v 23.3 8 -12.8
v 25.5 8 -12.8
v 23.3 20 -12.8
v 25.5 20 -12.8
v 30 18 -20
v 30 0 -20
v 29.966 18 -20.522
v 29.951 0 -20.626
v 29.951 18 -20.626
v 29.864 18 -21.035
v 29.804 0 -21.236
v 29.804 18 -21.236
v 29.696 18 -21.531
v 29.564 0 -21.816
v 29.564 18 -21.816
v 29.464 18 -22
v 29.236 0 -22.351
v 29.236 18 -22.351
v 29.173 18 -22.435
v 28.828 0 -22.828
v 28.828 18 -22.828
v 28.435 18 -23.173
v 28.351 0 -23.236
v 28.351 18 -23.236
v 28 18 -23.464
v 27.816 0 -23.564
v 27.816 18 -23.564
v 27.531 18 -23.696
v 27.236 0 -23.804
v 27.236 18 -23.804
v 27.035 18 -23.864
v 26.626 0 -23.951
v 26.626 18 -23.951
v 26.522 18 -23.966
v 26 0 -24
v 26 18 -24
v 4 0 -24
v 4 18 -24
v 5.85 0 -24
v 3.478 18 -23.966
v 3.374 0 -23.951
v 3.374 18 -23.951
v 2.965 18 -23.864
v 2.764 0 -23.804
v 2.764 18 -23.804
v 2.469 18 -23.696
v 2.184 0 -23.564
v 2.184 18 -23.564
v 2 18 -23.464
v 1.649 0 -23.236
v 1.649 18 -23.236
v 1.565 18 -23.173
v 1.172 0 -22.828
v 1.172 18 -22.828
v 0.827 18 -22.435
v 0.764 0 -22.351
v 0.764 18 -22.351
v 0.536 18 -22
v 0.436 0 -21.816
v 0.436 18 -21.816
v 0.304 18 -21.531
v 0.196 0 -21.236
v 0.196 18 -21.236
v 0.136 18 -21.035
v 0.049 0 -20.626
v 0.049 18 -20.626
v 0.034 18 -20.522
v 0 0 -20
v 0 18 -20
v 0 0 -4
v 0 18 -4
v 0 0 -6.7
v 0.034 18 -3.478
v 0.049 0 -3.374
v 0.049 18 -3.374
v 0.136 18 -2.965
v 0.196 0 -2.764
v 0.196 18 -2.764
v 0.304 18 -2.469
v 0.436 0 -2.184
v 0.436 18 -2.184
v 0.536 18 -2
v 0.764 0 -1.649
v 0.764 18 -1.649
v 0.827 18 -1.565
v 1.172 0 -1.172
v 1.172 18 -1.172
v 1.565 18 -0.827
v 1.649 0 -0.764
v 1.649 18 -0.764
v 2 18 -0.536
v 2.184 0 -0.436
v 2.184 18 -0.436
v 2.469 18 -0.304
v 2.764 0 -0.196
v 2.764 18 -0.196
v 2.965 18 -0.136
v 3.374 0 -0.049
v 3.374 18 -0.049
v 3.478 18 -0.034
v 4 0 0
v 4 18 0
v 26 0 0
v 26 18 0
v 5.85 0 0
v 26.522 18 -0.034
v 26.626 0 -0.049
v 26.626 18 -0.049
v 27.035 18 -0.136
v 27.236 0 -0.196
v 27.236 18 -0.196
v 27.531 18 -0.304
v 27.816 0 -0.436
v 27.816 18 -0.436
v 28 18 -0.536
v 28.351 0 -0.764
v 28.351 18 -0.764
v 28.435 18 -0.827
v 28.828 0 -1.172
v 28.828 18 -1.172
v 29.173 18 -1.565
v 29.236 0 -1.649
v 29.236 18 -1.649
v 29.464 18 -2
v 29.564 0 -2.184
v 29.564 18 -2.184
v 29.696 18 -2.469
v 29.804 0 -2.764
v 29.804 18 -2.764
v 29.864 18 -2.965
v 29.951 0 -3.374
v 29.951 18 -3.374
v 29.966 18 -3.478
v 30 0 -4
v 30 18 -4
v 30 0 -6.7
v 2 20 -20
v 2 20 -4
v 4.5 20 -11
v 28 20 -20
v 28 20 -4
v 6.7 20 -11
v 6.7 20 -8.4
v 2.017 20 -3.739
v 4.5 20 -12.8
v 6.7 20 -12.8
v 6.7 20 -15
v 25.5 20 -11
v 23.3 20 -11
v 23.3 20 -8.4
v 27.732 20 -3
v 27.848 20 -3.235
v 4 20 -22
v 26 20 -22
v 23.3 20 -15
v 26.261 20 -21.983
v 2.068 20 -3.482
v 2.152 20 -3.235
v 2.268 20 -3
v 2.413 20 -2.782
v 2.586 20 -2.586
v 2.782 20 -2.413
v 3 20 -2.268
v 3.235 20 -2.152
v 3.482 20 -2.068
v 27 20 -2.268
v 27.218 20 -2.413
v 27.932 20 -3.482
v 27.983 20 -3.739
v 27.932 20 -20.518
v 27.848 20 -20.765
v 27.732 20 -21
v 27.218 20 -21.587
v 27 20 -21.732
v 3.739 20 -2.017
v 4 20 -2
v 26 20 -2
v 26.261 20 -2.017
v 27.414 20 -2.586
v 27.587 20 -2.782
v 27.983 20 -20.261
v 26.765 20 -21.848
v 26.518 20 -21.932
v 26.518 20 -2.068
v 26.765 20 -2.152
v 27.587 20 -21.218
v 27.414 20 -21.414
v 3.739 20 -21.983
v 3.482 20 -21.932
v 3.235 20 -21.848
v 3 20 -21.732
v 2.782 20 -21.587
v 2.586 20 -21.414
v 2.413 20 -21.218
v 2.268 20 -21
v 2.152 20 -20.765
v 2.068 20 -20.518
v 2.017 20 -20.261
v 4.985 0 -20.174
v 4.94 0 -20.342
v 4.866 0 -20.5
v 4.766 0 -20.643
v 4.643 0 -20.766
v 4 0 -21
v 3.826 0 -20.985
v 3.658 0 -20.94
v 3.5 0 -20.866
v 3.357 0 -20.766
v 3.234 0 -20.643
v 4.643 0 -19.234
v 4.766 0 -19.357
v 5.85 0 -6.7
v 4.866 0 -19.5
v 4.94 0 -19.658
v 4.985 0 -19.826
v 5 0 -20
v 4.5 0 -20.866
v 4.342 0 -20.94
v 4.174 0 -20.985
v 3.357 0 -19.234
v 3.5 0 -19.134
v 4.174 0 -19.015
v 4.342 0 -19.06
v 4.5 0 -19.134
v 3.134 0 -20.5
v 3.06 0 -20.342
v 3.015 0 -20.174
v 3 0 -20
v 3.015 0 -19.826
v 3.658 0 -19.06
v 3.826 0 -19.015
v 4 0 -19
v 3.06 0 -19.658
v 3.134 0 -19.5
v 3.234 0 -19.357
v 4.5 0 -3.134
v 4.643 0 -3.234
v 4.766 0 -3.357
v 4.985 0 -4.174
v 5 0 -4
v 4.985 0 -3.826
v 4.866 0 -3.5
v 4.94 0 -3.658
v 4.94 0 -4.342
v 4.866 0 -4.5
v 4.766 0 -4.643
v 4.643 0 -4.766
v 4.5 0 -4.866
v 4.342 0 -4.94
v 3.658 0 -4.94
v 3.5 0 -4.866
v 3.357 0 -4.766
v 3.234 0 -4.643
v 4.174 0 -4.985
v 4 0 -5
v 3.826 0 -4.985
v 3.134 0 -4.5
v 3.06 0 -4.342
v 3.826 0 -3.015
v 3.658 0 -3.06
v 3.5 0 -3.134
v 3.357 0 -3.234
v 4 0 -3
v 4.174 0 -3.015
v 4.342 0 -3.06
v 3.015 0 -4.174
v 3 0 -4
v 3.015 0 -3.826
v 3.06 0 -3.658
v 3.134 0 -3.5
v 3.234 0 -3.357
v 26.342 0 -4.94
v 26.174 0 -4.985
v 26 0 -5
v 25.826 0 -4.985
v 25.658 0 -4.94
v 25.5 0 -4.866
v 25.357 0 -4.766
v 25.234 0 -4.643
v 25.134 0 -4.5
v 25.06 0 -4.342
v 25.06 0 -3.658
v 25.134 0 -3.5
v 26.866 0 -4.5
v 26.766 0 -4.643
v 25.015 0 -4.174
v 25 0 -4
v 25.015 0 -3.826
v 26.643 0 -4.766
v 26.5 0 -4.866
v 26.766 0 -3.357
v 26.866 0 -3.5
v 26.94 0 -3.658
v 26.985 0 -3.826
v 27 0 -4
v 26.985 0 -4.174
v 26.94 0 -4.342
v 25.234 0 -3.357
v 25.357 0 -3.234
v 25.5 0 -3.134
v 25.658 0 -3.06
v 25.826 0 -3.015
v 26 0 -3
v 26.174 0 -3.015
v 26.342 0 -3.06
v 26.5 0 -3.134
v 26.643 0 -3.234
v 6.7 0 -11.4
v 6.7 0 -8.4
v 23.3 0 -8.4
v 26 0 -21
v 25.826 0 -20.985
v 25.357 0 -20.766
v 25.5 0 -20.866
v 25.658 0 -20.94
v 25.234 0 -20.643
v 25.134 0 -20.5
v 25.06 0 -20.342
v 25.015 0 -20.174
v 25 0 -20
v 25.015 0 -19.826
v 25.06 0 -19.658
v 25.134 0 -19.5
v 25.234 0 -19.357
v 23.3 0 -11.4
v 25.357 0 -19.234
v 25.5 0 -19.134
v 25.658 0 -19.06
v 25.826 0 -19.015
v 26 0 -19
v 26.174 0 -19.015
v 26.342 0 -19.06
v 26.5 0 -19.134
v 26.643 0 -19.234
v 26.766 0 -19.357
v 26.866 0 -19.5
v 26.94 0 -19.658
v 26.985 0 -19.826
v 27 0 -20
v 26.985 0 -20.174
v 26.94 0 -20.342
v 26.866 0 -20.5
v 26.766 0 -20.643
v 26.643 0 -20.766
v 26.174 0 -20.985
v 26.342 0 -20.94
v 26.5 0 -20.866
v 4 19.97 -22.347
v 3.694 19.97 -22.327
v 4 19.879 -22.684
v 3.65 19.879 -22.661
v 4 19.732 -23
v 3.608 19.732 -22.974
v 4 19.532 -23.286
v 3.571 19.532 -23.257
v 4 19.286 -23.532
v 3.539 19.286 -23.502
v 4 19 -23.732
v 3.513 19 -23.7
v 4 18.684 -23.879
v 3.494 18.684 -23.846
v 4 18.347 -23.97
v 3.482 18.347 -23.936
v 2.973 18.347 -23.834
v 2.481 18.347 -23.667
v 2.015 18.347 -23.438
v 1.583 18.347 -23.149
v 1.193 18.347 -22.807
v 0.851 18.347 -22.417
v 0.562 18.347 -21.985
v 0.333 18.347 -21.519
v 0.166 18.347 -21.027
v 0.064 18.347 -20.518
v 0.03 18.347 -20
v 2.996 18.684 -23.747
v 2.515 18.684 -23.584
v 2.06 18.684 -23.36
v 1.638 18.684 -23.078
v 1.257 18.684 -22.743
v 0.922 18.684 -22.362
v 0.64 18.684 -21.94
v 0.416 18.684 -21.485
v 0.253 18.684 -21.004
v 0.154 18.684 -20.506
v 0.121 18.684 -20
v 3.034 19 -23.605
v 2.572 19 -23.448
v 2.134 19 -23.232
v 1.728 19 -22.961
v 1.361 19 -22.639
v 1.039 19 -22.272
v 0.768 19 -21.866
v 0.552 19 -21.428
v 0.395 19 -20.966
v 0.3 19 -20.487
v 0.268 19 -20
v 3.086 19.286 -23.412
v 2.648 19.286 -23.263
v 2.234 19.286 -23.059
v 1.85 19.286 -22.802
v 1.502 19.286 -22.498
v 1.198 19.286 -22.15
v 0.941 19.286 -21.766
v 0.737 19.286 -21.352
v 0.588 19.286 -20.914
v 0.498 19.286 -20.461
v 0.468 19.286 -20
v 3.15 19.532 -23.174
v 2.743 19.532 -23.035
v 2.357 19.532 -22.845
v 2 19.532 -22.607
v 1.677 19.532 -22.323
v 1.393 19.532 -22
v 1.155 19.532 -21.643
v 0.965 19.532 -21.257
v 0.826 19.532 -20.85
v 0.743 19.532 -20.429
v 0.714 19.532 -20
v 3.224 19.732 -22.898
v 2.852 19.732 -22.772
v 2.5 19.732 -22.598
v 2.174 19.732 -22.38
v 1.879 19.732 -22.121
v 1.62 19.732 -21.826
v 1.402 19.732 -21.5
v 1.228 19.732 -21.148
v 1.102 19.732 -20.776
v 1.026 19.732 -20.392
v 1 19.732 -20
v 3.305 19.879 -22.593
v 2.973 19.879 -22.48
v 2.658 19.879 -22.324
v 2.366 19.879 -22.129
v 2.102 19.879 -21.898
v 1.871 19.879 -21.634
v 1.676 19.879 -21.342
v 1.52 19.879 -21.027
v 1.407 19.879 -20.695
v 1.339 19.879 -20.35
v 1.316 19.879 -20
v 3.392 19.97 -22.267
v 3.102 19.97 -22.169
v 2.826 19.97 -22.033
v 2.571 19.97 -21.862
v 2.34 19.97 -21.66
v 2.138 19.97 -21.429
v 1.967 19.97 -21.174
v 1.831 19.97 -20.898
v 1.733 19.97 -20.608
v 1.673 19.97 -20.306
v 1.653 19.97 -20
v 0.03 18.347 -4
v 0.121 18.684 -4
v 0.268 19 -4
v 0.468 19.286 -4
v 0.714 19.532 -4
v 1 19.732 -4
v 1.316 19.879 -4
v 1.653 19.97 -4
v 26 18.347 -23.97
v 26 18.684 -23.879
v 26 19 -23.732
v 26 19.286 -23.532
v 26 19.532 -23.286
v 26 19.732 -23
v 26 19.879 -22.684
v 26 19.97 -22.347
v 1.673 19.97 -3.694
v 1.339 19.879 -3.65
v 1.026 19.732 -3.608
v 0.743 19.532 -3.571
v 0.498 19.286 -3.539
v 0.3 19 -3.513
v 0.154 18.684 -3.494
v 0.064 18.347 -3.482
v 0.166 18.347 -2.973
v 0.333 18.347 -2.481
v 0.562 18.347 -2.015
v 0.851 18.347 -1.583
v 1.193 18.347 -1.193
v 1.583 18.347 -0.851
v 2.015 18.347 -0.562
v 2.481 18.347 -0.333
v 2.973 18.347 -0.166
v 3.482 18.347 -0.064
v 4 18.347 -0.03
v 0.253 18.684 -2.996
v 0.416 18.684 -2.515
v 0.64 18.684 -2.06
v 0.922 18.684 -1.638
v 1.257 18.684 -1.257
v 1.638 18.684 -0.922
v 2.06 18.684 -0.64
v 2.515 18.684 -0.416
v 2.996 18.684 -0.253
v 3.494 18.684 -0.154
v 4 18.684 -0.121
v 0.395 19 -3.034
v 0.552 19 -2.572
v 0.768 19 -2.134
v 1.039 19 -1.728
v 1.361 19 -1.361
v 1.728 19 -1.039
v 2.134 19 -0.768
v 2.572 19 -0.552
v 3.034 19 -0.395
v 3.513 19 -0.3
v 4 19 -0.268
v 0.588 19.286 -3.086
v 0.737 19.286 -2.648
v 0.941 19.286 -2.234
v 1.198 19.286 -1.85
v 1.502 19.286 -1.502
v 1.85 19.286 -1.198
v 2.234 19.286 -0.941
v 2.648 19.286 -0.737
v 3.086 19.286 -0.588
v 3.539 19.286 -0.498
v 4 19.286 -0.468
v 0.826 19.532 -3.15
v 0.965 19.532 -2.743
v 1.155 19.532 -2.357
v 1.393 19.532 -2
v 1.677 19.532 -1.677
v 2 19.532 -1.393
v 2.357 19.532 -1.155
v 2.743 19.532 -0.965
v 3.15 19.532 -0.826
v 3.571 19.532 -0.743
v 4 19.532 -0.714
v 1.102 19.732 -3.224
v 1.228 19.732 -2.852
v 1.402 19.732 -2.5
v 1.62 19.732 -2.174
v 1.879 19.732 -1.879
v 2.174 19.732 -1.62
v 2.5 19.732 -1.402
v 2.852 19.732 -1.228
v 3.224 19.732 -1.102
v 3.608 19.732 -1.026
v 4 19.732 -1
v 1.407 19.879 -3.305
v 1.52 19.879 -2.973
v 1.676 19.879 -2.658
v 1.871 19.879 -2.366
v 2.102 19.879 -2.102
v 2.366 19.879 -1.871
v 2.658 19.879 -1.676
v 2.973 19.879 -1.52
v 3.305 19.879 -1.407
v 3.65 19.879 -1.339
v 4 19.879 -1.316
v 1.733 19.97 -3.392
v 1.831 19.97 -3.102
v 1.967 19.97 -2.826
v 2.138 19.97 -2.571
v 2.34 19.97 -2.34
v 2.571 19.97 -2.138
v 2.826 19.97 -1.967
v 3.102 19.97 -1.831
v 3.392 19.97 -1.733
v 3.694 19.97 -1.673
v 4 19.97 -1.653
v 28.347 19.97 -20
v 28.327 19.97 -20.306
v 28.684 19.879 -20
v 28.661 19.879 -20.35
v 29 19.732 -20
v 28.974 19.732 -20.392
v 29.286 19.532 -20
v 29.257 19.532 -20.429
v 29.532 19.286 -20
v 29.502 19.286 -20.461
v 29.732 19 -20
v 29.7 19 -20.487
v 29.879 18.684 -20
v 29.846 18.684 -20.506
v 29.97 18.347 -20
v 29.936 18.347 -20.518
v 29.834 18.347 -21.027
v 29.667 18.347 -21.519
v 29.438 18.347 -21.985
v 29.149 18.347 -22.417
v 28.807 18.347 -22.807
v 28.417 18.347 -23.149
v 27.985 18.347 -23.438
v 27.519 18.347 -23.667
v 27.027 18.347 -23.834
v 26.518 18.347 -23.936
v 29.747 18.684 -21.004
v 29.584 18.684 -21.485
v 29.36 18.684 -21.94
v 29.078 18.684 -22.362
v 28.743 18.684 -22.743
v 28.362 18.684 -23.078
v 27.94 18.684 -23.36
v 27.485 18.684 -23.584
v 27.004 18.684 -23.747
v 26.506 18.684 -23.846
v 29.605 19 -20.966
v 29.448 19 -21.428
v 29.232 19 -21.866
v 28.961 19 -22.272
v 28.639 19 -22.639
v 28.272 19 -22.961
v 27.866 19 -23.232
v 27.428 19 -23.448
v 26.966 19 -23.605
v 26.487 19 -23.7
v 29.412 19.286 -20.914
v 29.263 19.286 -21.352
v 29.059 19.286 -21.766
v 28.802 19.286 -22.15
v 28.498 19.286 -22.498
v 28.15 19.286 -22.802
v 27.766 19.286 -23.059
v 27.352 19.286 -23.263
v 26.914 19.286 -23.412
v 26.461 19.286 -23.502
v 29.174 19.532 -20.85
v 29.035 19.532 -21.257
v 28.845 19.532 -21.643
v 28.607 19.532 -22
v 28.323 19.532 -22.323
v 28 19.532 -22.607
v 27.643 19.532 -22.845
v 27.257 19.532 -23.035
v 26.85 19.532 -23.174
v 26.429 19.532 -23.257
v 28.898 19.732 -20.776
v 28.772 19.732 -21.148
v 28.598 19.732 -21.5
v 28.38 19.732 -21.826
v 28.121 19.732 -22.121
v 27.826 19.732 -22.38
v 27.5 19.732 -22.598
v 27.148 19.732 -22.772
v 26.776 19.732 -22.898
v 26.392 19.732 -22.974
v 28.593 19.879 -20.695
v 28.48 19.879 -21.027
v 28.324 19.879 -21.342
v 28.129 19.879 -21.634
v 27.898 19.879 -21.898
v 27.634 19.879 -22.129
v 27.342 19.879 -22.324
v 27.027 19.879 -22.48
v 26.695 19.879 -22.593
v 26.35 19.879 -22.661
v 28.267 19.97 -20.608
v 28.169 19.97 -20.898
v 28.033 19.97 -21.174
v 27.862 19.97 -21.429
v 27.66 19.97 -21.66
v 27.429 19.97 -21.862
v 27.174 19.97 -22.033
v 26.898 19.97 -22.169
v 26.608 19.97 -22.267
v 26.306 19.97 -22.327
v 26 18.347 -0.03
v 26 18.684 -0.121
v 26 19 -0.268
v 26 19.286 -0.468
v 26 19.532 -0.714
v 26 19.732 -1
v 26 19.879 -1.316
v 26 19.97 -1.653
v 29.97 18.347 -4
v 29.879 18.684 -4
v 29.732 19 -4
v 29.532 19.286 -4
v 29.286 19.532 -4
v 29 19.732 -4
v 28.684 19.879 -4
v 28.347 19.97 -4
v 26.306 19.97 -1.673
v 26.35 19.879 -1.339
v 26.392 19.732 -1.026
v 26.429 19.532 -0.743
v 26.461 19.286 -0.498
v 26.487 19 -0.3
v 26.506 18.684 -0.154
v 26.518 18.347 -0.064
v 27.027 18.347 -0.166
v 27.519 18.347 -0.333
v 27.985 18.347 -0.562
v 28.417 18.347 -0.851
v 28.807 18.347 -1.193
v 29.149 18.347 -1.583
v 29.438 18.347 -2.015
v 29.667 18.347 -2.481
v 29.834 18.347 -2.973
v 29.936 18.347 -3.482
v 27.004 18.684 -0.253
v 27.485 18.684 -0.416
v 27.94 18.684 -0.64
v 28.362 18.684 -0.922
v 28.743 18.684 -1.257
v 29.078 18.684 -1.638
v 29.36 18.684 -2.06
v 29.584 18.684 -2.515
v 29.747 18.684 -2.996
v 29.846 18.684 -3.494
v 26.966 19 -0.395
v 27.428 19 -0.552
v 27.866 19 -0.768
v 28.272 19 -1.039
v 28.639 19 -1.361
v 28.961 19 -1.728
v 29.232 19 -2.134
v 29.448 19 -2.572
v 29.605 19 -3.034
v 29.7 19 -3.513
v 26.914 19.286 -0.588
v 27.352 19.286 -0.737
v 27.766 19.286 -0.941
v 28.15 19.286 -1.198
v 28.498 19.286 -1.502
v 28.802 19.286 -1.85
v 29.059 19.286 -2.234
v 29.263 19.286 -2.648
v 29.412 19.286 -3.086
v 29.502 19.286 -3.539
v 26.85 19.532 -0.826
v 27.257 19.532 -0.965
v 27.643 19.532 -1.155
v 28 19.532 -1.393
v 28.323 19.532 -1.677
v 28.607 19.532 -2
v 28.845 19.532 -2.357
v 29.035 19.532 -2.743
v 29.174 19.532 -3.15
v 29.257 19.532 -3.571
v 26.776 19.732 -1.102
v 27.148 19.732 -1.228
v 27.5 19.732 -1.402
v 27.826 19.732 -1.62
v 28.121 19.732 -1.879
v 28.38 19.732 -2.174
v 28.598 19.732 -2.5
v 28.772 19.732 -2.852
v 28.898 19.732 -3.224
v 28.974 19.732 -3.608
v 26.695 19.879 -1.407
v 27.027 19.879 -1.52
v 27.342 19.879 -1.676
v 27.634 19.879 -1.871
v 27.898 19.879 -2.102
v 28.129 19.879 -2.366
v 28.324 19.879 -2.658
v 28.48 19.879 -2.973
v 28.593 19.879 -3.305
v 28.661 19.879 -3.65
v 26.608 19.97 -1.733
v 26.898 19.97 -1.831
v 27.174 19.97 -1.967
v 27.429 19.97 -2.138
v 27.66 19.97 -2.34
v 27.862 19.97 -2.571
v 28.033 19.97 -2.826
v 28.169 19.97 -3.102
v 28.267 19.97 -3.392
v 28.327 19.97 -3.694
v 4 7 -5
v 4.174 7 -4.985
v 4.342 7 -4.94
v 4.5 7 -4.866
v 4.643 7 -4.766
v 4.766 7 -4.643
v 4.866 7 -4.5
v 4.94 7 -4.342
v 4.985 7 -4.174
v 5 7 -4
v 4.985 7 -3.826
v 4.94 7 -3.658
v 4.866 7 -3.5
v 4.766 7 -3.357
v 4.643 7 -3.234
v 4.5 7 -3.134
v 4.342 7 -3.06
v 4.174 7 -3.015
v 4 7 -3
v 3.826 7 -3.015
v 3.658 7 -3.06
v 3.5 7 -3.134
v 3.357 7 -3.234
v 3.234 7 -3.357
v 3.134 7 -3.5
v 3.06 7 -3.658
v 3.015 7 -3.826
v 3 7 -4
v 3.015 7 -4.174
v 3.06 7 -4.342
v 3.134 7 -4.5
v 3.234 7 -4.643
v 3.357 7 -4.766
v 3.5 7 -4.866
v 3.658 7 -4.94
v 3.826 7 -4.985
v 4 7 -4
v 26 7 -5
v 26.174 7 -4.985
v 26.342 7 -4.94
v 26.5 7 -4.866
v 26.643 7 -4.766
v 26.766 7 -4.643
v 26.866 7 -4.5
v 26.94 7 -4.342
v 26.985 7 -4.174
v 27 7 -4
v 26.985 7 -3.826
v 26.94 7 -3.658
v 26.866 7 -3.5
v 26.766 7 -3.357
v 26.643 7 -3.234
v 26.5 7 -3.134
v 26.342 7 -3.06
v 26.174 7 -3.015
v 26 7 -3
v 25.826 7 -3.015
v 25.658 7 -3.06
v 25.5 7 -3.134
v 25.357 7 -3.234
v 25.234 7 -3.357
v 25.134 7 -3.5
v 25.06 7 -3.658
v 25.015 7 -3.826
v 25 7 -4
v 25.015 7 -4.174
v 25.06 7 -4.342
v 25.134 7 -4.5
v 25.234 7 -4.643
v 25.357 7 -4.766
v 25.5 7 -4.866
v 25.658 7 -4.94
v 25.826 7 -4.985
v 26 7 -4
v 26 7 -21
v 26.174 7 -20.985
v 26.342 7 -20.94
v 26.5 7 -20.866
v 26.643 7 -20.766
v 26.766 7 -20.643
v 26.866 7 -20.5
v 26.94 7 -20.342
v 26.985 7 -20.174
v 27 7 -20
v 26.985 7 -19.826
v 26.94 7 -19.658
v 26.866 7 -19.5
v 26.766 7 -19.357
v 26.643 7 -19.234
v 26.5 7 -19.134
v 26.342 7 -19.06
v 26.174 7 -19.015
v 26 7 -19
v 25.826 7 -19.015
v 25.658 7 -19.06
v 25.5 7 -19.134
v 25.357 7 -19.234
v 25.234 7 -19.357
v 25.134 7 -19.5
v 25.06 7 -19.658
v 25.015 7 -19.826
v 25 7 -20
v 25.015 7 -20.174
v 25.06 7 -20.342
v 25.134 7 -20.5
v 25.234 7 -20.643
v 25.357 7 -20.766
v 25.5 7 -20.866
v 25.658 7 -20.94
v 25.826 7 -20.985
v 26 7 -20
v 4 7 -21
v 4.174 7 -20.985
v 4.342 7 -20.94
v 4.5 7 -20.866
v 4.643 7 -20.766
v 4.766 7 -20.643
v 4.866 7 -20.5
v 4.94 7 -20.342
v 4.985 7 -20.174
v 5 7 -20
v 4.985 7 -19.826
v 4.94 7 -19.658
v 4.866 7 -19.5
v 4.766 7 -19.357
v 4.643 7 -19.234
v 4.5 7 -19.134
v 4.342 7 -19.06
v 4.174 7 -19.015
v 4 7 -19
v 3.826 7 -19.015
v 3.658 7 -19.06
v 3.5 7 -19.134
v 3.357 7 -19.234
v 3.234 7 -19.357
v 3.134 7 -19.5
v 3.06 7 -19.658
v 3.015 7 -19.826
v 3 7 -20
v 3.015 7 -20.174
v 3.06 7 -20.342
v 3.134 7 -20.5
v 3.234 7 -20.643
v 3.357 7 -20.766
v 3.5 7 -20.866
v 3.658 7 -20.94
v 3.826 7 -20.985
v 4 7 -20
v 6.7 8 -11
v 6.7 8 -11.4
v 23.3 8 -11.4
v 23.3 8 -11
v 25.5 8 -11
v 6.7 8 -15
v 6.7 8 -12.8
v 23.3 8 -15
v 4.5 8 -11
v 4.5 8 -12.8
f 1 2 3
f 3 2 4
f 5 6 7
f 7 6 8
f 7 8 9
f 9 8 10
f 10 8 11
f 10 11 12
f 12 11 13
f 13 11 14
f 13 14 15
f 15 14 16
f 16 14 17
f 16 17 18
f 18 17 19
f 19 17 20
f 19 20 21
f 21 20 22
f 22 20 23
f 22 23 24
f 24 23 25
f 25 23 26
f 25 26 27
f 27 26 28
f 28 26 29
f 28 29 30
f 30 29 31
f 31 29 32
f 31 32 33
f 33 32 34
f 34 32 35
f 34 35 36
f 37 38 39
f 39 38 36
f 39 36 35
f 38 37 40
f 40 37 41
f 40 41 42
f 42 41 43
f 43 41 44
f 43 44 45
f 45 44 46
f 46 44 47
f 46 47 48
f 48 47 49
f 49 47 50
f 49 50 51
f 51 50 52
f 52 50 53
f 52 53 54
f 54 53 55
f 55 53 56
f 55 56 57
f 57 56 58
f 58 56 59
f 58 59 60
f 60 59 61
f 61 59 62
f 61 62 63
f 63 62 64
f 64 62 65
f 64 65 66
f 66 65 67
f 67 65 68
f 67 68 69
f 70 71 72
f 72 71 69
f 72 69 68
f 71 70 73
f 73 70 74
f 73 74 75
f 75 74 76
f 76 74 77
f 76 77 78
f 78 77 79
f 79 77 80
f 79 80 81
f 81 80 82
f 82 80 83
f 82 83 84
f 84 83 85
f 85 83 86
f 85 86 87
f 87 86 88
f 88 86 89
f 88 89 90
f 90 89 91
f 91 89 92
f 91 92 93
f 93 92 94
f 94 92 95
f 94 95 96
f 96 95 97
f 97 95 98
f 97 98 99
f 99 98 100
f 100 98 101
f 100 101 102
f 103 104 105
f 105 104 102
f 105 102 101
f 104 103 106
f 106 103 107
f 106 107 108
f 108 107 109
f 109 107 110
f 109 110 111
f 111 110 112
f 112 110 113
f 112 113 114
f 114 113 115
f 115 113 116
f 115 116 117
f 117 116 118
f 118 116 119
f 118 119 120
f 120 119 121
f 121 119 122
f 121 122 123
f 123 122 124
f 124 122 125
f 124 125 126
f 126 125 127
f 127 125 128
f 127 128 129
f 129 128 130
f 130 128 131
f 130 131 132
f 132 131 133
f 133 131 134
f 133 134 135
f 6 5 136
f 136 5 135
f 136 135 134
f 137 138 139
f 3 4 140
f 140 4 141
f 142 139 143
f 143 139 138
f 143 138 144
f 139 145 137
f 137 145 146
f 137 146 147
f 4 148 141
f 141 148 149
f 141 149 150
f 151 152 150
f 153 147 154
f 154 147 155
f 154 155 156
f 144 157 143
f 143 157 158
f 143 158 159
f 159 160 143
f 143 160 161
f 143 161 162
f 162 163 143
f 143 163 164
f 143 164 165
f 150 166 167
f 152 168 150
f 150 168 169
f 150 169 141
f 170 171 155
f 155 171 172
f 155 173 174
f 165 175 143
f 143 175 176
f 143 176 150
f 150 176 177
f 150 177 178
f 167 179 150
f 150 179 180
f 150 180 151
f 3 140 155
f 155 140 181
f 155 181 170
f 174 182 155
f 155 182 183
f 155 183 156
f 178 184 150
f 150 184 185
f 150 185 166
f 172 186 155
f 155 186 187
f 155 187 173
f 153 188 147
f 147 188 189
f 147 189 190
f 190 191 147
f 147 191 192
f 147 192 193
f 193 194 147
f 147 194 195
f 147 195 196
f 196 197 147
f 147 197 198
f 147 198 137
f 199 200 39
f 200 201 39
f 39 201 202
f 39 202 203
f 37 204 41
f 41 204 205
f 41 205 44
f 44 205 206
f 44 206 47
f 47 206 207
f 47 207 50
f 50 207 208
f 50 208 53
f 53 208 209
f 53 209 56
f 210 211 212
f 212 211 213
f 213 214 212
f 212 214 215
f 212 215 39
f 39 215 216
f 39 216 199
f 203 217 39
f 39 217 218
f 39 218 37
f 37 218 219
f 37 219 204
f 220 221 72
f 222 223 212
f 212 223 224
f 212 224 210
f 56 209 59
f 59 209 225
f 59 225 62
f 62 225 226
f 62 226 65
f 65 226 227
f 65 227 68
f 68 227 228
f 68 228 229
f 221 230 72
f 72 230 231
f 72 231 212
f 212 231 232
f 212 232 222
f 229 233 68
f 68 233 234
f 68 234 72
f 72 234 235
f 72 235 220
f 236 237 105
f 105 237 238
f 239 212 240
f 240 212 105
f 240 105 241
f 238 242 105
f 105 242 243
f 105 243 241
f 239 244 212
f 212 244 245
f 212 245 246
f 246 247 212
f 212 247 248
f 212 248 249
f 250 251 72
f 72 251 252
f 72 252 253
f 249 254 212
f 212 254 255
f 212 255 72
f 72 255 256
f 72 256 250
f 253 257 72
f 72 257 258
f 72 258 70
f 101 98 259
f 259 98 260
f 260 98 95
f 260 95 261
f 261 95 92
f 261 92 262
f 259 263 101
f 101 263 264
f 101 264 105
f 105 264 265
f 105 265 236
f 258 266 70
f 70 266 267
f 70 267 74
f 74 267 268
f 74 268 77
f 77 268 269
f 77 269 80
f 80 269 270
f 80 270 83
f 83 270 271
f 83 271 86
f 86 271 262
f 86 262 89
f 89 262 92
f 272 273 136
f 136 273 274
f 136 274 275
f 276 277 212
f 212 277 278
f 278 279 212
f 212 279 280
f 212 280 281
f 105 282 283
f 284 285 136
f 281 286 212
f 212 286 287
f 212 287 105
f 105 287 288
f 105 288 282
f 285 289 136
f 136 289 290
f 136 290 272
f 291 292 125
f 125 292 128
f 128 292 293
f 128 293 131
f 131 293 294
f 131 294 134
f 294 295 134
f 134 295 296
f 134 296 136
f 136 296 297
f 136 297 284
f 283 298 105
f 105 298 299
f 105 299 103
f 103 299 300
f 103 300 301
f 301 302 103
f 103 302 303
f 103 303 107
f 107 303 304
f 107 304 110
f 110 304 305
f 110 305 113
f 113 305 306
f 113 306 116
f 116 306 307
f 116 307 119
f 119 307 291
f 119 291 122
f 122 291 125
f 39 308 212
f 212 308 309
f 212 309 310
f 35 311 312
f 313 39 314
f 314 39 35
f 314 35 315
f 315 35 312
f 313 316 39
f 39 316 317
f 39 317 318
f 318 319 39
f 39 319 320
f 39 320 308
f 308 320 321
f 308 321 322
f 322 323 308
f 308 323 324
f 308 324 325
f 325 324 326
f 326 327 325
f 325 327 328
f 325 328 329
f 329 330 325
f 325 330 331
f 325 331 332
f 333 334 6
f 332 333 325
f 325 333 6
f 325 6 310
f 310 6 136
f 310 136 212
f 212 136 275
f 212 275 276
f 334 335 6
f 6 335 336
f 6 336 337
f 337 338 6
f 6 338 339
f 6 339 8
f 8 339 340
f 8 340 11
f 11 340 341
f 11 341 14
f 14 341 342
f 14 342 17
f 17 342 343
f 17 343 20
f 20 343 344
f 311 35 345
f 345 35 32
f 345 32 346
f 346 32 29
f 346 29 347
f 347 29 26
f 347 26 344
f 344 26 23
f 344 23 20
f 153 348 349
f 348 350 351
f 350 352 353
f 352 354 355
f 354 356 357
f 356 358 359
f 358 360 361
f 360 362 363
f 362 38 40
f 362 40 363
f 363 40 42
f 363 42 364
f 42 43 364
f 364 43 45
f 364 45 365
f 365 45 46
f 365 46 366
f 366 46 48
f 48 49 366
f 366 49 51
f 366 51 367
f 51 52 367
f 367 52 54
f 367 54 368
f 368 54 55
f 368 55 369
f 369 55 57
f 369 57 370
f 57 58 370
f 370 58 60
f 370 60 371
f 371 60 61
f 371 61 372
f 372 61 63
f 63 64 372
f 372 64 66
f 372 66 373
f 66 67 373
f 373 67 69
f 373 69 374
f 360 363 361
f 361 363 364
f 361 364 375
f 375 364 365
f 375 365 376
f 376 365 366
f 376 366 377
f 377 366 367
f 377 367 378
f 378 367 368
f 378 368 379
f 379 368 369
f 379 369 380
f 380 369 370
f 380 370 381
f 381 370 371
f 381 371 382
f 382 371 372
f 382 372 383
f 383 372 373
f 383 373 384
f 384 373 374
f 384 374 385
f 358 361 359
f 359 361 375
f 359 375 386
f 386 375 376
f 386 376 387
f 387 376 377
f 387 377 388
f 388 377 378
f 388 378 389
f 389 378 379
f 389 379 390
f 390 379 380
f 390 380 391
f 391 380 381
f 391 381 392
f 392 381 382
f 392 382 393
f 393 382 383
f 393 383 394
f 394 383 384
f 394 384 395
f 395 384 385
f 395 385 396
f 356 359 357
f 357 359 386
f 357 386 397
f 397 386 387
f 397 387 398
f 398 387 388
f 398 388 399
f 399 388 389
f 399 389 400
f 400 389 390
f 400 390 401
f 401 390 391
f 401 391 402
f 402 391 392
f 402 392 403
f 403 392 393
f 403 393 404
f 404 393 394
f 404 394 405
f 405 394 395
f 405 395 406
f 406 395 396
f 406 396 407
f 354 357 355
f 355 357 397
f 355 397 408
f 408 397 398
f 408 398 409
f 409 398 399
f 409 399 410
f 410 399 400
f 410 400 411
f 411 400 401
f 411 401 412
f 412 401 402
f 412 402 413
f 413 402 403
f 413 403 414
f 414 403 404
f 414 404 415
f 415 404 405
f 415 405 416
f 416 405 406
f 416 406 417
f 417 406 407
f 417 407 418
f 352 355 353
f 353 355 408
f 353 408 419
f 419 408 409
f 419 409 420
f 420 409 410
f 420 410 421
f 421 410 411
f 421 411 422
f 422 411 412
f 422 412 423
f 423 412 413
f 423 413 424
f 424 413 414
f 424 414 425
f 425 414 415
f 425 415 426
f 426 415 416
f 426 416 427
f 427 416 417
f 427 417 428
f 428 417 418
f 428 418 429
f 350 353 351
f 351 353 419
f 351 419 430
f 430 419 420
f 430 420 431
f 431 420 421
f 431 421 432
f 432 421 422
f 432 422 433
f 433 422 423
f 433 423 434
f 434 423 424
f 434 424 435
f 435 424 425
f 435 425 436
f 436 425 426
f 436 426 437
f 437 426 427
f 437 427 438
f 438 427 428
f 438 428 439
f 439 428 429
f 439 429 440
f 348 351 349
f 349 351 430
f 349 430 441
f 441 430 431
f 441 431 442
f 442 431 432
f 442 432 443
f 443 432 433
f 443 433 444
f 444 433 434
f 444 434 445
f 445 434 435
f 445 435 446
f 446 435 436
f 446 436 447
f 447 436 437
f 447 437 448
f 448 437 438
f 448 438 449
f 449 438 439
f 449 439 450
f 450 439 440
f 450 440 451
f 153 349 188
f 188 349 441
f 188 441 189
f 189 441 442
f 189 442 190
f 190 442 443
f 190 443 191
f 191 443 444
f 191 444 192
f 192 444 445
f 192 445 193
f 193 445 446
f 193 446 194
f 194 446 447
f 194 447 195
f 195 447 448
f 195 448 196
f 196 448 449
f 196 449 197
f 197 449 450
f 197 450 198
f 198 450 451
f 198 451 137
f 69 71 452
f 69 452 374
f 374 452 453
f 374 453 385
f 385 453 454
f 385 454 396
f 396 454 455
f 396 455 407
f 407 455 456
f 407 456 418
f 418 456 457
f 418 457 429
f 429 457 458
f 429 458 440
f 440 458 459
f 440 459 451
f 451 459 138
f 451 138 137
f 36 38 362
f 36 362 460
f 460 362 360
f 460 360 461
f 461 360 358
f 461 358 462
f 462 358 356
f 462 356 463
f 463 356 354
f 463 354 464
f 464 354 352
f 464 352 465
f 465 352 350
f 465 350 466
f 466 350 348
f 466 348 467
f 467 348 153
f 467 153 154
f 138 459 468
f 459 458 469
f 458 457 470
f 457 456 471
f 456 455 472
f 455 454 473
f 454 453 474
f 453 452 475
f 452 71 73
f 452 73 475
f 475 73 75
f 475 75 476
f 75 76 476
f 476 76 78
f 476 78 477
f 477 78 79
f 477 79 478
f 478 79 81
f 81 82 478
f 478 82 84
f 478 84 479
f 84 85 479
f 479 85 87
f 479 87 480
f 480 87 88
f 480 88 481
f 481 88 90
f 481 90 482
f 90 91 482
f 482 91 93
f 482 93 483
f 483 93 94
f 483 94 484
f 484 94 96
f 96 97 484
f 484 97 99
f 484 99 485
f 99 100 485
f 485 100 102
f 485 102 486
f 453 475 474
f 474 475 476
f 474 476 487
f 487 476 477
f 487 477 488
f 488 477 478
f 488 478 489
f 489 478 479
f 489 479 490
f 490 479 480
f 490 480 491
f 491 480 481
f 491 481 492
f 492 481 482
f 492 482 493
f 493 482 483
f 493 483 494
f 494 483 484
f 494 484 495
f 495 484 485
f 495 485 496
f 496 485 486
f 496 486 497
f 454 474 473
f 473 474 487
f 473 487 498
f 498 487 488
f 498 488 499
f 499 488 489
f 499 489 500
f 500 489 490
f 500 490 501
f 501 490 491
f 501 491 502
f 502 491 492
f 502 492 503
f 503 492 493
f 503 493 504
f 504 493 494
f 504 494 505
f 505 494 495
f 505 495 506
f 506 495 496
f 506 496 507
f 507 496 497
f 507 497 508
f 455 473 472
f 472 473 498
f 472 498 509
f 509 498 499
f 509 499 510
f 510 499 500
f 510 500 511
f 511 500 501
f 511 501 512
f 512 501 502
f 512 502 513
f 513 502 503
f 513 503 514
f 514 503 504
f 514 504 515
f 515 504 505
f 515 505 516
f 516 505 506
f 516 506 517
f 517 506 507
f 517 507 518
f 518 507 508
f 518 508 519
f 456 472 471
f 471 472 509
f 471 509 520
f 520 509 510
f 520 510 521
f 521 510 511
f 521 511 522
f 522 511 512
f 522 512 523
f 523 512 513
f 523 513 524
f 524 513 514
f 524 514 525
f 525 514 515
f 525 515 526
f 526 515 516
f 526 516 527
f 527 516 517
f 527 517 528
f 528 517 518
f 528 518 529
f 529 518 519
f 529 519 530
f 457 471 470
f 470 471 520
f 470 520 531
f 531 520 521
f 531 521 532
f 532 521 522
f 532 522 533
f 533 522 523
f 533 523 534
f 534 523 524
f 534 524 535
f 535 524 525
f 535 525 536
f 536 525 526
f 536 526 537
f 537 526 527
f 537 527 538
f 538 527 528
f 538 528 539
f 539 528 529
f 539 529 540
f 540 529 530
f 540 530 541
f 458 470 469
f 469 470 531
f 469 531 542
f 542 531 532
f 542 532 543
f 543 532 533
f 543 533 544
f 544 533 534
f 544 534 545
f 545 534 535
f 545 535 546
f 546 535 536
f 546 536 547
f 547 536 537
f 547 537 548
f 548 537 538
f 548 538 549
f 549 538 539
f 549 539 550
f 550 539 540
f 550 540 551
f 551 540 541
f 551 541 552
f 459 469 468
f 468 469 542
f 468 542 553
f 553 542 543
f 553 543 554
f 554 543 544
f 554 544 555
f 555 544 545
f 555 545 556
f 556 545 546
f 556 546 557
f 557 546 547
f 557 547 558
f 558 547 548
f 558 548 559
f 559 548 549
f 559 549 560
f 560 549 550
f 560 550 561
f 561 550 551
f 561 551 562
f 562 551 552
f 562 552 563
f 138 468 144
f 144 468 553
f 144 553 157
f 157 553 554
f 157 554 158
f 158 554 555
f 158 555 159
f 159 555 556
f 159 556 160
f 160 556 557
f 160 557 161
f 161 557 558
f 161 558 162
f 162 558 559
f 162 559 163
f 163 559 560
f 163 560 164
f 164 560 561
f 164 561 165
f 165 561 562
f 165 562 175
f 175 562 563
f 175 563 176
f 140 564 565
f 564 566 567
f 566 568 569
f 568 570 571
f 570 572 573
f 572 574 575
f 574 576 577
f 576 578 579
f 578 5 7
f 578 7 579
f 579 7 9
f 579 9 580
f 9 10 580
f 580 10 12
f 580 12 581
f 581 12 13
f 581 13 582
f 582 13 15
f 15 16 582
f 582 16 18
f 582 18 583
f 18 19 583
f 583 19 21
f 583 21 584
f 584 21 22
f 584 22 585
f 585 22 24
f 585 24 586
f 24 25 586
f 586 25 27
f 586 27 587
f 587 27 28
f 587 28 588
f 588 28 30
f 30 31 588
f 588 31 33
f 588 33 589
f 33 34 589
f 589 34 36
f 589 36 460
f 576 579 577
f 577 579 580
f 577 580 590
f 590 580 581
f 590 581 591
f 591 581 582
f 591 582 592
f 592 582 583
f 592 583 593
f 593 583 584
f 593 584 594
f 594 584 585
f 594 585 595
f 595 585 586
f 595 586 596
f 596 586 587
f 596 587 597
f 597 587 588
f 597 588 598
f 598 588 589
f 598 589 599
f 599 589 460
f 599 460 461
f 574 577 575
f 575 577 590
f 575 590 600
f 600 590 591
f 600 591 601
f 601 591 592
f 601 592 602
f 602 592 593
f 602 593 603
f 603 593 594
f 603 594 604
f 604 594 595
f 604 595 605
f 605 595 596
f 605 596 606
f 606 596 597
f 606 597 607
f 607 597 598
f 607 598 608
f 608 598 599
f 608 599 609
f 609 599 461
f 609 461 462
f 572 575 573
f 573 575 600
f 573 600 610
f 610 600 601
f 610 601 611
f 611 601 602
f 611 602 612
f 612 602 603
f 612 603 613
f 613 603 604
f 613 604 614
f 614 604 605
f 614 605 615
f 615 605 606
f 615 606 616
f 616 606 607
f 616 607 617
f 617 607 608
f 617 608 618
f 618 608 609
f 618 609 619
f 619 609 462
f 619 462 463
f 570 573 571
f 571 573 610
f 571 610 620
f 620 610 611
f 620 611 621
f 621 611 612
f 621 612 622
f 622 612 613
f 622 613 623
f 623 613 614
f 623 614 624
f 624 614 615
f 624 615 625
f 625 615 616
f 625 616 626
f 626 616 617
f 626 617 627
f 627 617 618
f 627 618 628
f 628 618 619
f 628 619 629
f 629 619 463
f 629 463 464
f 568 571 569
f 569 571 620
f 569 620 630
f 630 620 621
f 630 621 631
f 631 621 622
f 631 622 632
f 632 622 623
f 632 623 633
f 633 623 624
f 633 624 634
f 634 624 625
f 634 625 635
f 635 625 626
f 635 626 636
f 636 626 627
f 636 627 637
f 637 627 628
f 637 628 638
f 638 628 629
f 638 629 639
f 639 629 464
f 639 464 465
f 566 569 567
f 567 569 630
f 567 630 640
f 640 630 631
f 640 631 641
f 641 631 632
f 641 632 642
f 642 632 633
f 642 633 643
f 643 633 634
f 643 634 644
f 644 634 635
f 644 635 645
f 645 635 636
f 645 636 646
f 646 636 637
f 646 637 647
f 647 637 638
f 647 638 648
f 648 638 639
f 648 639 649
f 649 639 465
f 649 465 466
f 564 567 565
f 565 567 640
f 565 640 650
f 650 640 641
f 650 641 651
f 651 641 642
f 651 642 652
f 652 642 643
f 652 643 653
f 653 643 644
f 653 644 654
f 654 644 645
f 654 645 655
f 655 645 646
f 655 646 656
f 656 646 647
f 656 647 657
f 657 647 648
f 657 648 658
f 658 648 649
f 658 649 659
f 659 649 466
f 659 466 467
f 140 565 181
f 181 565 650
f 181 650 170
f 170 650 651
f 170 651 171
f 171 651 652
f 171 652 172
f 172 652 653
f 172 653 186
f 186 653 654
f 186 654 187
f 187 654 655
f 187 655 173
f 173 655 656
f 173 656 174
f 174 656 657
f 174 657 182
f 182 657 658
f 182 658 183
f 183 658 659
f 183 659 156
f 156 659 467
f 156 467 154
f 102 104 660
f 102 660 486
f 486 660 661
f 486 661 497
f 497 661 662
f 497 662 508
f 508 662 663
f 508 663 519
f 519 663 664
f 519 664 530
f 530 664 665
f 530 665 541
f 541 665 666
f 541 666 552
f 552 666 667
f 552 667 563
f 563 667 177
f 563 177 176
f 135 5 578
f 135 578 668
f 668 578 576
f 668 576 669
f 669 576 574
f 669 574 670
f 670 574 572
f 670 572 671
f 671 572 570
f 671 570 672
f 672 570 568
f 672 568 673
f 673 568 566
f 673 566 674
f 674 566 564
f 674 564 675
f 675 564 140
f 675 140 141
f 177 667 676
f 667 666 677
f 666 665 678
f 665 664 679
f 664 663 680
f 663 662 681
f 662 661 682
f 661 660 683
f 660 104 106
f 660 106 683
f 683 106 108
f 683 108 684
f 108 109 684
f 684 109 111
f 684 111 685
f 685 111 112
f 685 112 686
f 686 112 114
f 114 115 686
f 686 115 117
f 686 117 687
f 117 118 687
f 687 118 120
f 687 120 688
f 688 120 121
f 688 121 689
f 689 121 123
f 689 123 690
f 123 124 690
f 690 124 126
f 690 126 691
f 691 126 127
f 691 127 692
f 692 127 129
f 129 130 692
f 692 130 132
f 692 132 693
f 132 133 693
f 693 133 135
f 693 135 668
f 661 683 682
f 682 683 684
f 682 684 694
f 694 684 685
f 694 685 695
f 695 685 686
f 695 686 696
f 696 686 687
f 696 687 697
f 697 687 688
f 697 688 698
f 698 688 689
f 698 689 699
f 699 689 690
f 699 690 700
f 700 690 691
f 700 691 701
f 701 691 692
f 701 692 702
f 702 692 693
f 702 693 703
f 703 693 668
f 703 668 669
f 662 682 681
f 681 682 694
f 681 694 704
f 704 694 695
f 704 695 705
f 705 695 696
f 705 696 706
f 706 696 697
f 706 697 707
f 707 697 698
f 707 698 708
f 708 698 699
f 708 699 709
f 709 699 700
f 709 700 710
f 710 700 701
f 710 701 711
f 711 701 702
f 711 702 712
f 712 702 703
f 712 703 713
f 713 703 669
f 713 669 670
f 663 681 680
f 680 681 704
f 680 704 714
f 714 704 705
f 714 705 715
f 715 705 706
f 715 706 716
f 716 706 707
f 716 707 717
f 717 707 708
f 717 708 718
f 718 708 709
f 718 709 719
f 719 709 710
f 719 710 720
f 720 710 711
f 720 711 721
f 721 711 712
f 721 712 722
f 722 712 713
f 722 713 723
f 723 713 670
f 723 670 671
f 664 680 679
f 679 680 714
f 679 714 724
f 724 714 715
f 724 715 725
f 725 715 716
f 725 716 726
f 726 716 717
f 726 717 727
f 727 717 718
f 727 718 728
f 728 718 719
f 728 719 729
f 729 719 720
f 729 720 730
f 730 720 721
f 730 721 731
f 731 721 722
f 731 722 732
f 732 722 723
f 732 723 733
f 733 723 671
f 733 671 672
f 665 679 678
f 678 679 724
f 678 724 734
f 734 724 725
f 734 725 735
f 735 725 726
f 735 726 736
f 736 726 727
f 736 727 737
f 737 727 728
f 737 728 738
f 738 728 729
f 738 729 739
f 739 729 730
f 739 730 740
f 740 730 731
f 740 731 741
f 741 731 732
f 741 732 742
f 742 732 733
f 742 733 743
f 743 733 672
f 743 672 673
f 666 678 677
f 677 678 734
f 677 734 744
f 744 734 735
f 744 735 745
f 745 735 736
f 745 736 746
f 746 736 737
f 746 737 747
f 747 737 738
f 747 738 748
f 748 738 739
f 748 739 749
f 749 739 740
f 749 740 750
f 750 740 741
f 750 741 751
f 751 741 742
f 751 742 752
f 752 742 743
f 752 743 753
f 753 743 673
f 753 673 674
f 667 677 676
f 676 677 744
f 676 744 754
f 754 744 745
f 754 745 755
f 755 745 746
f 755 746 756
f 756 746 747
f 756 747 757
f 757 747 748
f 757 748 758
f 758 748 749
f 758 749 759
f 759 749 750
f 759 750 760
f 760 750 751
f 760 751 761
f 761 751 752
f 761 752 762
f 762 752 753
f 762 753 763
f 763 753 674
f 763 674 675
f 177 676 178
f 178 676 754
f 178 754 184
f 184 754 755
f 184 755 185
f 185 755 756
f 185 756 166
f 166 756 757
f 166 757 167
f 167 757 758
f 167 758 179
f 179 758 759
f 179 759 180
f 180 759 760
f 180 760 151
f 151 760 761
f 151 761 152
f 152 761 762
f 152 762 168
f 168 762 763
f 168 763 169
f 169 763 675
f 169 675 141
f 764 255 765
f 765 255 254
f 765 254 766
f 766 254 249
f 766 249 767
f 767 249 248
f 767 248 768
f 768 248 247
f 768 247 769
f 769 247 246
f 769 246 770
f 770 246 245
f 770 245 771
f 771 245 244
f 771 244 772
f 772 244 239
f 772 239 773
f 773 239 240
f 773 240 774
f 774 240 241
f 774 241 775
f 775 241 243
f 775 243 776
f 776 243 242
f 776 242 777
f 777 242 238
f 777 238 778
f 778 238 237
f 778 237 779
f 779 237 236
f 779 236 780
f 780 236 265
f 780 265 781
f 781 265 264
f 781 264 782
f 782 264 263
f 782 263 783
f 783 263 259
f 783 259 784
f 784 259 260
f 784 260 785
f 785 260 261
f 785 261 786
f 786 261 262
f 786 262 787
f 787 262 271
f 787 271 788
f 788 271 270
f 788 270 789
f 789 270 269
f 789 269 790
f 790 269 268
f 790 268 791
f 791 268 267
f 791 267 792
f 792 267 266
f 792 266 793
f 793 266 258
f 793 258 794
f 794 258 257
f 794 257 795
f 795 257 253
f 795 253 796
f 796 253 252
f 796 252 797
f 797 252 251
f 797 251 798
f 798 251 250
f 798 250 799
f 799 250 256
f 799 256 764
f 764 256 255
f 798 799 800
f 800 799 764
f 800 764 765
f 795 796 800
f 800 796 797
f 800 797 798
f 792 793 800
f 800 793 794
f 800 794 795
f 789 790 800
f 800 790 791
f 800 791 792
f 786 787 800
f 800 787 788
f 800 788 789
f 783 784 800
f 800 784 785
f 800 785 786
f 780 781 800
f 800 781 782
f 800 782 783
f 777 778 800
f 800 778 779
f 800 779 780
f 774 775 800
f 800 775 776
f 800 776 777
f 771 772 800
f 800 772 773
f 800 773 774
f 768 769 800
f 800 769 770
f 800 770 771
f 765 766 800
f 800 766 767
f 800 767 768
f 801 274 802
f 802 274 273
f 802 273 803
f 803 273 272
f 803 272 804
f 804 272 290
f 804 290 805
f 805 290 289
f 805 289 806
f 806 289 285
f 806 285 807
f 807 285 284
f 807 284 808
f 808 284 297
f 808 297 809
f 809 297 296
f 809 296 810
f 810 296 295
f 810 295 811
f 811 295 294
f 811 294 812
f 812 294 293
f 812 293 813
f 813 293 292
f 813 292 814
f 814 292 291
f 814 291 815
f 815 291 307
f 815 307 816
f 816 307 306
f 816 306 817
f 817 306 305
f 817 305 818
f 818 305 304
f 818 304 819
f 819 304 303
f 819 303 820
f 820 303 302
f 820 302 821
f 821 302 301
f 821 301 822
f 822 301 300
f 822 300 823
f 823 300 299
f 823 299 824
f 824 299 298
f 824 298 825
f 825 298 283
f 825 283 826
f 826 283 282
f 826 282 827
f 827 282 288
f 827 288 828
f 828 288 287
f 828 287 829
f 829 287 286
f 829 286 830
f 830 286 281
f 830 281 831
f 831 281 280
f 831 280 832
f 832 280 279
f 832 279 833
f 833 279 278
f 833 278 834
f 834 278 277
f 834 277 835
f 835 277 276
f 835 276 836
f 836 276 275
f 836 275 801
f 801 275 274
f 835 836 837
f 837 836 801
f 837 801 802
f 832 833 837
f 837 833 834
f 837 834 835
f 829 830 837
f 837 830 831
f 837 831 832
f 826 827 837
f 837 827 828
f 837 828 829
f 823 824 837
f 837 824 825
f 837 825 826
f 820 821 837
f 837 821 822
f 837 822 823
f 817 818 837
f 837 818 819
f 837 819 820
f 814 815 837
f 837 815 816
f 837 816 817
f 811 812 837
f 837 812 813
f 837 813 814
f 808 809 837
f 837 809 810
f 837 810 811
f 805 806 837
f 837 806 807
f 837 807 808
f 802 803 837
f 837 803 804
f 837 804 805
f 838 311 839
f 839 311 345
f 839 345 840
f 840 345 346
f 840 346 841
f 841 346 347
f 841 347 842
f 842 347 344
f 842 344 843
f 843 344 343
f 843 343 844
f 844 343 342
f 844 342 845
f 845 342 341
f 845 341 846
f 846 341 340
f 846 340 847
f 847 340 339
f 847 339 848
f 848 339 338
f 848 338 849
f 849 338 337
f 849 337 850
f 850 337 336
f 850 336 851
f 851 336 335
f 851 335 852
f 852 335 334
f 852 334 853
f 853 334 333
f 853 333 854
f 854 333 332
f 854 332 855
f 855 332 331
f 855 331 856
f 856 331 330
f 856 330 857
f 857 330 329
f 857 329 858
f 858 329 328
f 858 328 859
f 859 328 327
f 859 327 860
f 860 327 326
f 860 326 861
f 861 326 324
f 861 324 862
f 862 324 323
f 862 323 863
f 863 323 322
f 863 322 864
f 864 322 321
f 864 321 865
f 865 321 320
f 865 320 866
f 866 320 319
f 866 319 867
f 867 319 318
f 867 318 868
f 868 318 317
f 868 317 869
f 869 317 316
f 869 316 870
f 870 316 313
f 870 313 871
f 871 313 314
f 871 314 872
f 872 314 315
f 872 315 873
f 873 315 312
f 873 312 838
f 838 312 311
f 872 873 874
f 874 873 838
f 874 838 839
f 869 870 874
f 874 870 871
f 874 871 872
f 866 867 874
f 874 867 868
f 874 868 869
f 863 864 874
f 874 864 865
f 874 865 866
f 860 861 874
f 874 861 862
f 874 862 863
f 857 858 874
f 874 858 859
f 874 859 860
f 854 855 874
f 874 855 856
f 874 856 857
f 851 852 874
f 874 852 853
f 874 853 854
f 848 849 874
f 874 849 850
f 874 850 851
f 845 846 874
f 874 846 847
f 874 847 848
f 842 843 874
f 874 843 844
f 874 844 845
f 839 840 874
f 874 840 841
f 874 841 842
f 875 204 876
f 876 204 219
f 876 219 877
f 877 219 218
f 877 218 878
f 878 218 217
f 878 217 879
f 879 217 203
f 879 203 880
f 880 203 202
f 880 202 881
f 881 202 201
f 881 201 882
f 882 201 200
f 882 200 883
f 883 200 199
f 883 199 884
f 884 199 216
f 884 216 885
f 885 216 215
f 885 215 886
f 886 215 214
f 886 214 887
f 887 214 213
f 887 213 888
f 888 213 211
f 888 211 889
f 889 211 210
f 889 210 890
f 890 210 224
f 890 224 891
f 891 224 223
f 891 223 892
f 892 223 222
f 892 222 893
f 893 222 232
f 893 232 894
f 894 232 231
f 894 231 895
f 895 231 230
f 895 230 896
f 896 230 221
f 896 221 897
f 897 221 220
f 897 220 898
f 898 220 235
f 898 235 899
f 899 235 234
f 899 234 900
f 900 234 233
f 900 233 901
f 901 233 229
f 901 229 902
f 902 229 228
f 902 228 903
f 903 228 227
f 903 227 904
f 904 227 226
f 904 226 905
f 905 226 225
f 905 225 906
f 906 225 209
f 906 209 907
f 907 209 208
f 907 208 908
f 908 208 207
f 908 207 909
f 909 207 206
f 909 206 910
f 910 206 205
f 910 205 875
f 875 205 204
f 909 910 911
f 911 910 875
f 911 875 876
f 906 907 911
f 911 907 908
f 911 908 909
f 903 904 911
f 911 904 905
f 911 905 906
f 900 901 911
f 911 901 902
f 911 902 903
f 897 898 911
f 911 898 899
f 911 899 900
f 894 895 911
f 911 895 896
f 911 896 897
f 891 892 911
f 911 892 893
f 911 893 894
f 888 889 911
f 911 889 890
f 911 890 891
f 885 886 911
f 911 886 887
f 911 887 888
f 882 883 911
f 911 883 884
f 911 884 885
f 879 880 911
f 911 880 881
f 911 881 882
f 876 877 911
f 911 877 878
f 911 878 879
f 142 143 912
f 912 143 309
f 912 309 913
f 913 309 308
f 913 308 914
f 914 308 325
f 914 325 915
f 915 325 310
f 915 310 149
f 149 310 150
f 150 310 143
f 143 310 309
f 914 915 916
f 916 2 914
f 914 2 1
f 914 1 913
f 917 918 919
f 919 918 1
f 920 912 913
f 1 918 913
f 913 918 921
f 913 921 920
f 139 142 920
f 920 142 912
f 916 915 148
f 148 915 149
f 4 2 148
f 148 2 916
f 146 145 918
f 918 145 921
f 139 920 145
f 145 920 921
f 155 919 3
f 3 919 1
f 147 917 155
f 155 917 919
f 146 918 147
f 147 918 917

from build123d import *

# Parameters (mm, degrees)
EXTRUDE_388_DEPTH      = 20
FILLET_1_R             = 2
SKETCH_6_R             = 1
CUT_EXTRUDE_1034_DEPTH = 7
CUT_EXTRUDE_1428_REACH = 45.313
SKETCH_3_W             = 16.6
SKETCH_3_H             = 3
SKETCH_2_W             = 21
SKETCH_2_H             = 1.8
CUT_EXTRUDE_1921_DEPTH = 12
SKETCH_7_W             = 16.6
SKETCH_7_H             = 2.2
CUT_EXTRUDE_1_DEPTH    = 12


with BuildPart() as part:
    # Эскиз1 → Extrude 388 (new body)
    with BuildSketch(Plane(origin=(0, 0, 0), x_dir=(1, 0, 0), z_dir=(0, 1, 0))):
        with BuildLine():
            Line((4, 0), (26, 0))
            ThreePointArc((26, 0), (28.828427125, 1.171572875), (30, 4))
            Line((30, 4), (30, 20))
            ThreePointArc((30, 20), (28.828427125, 22.828427125), (26, 24))
            Line((26, 24), (4, 24))
            ThreePointArc((4, 24), (1.171572875, 22.828427125), (0, 20))
            Line((0, 20), (0, 4))
            ThreePointArc((0, 4), (1.171572875, 1.171572875), (4, 0))
        make_face()
    extrude(amount=EXTRUDE_388_DEPTH)

    # Скругление1
    fillet_1_edges = [part.edges().sort_by_distance(p)[0] for p in [
        (1.171572875, 20, -22.828427125),
        (0, 20, -12),
        (1.171572875, 20, -1.171572875),
        (15, 20, 0),
        (28.828427125, 20, -1.171572875),
        (30, 20, -12),
        (28.828427125, 20, -22.828427125),
        (15, 20, -24),
    ]]
    fillet(fillet_1_edges, radius=FILLET_1_R)

    # Эскиз6 → Cut-Extrude 1034 (cut)
    with BuildSketch(Plane.XZ):
        with Locations(Location((4, -4, 0), (0, 0, 270))):
            Circle(SKETCH_6_R)
        with Locations(Location((26, -4, 0), (0, 0, 270))):
            Circle(SKETCH_6_R)
        with Locations(Location((26, -20, 0), (0, 0, 270))):
            Circle(SKETCH_6_R)
        with Locations(Location((4, -20, 0), (0, 0, 270))):
            Circle(SKETCH_6_R)
    extrude(amount=-CUT_EXTRUDE_1034_DEPTH, mode=Mode.SUBTRACT)

    # Эскиз3 → Cut-Extrude 1428 (cut, up to next)
    with BuildSketch(Plane(origin=(0, 20, 0), x_dir=(1, 0, 0), z_dir=(0, 1, 0)), mode=Mode.PRIVATE) as cut_extrude_1428_sk1:
        with Locations((15, 9.9)):
            Rectangle(SKETCH_3_W, SKETCH_3_H)
    cut_extrude_1428_tool1 = extrude(cut_extrude_1428_sk1.sketch, amount=-CUT_EXTRUDE_1428_REACH, mode=Mode.PRIVATE) & part.part
    add(cut_extrude_1428_tool1.solids().sort_by_distance((15, 20, -9.9))[0], mode=Mode.SUBTRACT)

    # Эскиз2 → Cut-Extrude 1921 (cut)
    with BuildSketch(Plane(origin=(0, 20, 0), x_dir=(1, 0, 0), z_dir=(0, 1, 0))):
        with Locations((15, 11.9)):
            Rectangle(SKETCH_2_W, SKETCH_2_H)
    extrude(amount=-CUT_EXTRUDE_1921_DEPTH, mode=Mode.SUBTRACT)

    # Эскиз7 → Вырез-Вытянуть1 (cut)
    with BuildSketch(Plane(origin=(0, 20, 0), x_dir=(1, 0, 0), z_dir=(0, 1, 0))):
        with Locations((15, 13.9)):
            Rectangle(SKETCH_7_W, SKETCH_7_H)
    extrude(amount=-CUT_EXTRUDE_1_DEPTH, mode=Mode.SUBTRACT)


solid = part.part
